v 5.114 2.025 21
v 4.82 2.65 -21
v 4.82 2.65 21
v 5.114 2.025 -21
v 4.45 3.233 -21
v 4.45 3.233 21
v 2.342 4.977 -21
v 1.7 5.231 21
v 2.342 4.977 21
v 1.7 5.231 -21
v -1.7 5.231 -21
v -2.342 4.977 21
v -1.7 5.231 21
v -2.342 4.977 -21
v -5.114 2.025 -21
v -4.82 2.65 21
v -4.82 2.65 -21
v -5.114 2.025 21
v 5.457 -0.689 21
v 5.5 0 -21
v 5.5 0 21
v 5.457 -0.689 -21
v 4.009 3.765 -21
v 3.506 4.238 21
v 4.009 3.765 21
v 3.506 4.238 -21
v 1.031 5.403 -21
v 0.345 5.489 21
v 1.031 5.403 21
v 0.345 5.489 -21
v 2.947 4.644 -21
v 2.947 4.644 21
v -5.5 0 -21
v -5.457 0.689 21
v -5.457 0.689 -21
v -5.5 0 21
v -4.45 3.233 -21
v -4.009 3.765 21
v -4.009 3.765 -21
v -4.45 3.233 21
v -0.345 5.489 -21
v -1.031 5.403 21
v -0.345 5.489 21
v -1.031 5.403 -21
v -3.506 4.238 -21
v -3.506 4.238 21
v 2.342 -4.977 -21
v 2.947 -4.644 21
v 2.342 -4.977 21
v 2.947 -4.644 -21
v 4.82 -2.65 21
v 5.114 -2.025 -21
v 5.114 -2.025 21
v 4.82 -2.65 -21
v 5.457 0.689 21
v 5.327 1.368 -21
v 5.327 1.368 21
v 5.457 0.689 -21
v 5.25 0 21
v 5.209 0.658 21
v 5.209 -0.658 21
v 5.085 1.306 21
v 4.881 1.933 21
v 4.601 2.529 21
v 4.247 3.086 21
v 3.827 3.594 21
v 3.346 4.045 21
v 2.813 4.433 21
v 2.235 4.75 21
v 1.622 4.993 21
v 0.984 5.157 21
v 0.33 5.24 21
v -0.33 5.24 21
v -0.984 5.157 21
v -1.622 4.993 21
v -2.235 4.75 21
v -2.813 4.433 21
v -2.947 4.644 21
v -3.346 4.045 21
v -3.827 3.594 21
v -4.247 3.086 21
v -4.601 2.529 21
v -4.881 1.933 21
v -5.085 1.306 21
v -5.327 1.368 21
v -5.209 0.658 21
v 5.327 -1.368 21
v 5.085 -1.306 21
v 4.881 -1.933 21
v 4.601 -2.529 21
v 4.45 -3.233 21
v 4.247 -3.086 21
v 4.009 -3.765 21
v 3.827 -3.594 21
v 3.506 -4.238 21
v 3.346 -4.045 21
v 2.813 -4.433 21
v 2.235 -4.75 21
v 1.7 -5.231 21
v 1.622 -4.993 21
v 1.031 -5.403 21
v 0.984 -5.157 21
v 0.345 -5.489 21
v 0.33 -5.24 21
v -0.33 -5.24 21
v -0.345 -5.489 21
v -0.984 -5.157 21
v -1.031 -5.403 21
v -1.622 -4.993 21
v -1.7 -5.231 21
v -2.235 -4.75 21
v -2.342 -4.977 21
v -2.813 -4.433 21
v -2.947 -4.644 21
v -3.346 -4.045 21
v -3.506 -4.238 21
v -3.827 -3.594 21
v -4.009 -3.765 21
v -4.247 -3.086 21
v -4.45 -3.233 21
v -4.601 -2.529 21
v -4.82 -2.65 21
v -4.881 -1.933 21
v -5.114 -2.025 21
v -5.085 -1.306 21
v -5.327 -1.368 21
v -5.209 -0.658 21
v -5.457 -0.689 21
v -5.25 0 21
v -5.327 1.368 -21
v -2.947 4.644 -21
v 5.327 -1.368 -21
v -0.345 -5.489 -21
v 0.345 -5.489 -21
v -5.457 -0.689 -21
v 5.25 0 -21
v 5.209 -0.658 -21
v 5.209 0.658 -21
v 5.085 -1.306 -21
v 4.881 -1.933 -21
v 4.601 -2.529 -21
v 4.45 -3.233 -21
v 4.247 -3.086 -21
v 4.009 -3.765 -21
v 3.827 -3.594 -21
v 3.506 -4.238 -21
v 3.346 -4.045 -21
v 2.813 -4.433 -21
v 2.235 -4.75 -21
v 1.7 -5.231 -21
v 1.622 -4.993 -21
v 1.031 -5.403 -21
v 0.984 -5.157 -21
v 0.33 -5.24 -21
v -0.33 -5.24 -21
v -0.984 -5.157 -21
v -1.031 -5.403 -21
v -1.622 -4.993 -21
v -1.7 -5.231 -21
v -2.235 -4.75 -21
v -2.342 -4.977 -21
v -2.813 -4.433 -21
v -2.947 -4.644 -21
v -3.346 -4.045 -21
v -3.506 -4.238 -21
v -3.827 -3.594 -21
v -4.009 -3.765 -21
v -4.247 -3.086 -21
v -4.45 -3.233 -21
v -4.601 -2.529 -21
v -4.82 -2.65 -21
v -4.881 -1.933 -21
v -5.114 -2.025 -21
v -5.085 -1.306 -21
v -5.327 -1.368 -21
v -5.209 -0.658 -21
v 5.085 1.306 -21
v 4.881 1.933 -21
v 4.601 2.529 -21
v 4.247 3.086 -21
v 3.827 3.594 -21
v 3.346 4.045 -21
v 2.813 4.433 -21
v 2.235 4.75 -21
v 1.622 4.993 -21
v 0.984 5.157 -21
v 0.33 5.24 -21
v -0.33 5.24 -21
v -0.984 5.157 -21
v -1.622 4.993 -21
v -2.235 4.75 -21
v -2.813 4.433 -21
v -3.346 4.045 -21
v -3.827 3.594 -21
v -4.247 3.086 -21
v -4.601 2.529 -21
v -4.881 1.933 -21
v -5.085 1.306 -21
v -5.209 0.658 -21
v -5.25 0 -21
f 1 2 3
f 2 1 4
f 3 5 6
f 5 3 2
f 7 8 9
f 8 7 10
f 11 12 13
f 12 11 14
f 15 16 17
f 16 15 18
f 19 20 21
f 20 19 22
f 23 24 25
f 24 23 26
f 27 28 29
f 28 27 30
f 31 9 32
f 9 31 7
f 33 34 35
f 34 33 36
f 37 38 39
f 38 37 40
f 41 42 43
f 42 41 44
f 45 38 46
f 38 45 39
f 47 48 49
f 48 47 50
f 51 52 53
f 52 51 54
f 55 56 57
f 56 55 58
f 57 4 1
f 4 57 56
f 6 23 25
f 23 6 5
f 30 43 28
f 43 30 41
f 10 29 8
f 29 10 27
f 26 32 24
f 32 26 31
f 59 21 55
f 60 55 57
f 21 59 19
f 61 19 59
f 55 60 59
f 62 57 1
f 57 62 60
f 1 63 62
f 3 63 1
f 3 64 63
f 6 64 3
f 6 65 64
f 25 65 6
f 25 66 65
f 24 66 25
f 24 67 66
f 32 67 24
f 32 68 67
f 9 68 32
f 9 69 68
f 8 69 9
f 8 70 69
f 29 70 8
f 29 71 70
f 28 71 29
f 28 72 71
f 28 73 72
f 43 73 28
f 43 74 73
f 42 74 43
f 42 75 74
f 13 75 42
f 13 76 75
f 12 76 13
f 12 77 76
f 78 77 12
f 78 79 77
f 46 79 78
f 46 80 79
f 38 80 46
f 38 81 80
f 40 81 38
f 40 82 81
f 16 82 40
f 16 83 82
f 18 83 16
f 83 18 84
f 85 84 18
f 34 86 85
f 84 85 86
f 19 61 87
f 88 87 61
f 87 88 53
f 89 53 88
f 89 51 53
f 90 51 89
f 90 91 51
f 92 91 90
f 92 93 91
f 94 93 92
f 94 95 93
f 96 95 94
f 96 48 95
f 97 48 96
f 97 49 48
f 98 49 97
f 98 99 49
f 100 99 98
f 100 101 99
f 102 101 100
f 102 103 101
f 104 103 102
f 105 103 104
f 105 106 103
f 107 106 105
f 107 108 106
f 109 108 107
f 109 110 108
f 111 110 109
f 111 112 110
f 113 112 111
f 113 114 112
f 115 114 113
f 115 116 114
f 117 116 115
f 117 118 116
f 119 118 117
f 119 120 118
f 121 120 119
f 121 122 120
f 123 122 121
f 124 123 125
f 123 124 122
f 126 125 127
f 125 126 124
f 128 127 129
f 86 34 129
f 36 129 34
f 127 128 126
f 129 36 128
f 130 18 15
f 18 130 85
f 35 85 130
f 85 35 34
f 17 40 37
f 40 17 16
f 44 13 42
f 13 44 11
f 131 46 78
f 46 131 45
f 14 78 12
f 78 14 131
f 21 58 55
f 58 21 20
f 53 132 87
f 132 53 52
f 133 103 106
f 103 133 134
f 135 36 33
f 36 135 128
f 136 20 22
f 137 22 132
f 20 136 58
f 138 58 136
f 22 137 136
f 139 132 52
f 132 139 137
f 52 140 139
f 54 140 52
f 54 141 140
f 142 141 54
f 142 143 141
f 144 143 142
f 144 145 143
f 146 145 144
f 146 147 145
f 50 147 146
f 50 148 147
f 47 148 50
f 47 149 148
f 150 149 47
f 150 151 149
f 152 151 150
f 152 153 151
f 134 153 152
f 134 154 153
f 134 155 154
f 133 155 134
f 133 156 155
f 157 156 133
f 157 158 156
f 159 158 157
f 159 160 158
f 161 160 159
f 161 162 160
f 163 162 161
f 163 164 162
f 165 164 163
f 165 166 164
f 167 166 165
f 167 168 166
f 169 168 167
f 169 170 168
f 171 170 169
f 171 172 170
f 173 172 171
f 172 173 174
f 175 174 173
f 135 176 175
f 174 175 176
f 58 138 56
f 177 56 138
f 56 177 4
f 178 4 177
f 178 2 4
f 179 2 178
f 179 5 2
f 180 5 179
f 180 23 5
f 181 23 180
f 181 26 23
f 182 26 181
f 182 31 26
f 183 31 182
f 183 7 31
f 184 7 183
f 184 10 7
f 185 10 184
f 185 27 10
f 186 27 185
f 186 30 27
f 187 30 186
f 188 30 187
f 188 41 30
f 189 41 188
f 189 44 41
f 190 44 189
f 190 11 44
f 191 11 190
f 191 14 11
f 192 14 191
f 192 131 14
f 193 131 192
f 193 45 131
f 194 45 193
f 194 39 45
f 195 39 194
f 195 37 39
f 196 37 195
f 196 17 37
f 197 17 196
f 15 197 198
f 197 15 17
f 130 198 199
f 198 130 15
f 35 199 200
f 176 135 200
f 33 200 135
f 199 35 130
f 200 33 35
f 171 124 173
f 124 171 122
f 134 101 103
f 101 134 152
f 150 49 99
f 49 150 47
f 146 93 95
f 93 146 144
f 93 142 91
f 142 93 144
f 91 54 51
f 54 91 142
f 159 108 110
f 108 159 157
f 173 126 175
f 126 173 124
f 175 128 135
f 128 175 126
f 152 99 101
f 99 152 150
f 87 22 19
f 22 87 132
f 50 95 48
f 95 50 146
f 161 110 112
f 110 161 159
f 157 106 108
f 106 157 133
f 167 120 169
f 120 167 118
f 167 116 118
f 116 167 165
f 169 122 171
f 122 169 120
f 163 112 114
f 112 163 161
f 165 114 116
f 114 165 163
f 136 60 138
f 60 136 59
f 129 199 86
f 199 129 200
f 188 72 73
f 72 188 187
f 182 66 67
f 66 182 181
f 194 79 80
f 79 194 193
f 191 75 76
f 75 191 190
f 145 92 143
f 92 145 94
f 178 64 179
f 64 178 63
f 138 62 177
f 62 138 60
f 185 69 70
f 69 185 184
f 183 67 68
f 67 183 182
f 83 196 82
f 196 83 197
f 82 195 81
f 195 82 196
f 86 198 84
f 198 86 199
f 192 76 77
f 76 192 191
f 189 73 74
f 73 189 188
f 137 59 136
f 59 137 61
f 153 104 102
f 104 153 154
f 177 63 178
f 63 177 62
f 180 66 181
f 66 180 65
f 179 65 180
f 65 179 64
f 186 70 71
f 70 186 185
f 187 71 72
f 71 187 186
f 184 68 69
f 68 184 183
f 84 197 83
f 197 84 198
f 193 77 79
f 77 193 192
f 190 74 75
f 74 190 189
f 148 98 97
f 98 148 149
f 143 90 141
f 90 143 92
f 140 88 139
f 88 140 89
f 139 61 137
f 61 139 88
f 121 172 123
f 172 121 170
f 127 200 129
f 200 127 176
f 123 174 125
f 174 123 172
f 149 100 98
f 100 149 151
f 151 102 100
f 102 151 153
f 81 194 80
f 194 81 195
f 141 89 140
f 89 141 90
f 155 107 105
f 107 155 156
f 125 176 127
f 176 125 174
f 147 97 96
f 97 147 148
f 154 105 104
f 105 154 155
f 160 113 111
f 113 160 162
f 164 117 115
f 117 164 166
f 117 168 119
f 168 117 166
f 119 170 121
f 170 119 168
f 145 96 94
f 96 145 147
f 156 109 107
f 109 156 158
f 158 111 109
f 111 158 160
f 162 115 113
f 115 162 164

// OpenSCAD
$fn = 50;


difference() {
	union() {
		translate(v = [0, 0, -21.0000000000]) {
			cylinder(h = 42, r = 5.5000000000);
		}
	}
	union() {
		translate(v = [0, 0, -100.0000000000]) {
			cylinder(h = 200, r = 5.2500000000);
		}
	}
}
